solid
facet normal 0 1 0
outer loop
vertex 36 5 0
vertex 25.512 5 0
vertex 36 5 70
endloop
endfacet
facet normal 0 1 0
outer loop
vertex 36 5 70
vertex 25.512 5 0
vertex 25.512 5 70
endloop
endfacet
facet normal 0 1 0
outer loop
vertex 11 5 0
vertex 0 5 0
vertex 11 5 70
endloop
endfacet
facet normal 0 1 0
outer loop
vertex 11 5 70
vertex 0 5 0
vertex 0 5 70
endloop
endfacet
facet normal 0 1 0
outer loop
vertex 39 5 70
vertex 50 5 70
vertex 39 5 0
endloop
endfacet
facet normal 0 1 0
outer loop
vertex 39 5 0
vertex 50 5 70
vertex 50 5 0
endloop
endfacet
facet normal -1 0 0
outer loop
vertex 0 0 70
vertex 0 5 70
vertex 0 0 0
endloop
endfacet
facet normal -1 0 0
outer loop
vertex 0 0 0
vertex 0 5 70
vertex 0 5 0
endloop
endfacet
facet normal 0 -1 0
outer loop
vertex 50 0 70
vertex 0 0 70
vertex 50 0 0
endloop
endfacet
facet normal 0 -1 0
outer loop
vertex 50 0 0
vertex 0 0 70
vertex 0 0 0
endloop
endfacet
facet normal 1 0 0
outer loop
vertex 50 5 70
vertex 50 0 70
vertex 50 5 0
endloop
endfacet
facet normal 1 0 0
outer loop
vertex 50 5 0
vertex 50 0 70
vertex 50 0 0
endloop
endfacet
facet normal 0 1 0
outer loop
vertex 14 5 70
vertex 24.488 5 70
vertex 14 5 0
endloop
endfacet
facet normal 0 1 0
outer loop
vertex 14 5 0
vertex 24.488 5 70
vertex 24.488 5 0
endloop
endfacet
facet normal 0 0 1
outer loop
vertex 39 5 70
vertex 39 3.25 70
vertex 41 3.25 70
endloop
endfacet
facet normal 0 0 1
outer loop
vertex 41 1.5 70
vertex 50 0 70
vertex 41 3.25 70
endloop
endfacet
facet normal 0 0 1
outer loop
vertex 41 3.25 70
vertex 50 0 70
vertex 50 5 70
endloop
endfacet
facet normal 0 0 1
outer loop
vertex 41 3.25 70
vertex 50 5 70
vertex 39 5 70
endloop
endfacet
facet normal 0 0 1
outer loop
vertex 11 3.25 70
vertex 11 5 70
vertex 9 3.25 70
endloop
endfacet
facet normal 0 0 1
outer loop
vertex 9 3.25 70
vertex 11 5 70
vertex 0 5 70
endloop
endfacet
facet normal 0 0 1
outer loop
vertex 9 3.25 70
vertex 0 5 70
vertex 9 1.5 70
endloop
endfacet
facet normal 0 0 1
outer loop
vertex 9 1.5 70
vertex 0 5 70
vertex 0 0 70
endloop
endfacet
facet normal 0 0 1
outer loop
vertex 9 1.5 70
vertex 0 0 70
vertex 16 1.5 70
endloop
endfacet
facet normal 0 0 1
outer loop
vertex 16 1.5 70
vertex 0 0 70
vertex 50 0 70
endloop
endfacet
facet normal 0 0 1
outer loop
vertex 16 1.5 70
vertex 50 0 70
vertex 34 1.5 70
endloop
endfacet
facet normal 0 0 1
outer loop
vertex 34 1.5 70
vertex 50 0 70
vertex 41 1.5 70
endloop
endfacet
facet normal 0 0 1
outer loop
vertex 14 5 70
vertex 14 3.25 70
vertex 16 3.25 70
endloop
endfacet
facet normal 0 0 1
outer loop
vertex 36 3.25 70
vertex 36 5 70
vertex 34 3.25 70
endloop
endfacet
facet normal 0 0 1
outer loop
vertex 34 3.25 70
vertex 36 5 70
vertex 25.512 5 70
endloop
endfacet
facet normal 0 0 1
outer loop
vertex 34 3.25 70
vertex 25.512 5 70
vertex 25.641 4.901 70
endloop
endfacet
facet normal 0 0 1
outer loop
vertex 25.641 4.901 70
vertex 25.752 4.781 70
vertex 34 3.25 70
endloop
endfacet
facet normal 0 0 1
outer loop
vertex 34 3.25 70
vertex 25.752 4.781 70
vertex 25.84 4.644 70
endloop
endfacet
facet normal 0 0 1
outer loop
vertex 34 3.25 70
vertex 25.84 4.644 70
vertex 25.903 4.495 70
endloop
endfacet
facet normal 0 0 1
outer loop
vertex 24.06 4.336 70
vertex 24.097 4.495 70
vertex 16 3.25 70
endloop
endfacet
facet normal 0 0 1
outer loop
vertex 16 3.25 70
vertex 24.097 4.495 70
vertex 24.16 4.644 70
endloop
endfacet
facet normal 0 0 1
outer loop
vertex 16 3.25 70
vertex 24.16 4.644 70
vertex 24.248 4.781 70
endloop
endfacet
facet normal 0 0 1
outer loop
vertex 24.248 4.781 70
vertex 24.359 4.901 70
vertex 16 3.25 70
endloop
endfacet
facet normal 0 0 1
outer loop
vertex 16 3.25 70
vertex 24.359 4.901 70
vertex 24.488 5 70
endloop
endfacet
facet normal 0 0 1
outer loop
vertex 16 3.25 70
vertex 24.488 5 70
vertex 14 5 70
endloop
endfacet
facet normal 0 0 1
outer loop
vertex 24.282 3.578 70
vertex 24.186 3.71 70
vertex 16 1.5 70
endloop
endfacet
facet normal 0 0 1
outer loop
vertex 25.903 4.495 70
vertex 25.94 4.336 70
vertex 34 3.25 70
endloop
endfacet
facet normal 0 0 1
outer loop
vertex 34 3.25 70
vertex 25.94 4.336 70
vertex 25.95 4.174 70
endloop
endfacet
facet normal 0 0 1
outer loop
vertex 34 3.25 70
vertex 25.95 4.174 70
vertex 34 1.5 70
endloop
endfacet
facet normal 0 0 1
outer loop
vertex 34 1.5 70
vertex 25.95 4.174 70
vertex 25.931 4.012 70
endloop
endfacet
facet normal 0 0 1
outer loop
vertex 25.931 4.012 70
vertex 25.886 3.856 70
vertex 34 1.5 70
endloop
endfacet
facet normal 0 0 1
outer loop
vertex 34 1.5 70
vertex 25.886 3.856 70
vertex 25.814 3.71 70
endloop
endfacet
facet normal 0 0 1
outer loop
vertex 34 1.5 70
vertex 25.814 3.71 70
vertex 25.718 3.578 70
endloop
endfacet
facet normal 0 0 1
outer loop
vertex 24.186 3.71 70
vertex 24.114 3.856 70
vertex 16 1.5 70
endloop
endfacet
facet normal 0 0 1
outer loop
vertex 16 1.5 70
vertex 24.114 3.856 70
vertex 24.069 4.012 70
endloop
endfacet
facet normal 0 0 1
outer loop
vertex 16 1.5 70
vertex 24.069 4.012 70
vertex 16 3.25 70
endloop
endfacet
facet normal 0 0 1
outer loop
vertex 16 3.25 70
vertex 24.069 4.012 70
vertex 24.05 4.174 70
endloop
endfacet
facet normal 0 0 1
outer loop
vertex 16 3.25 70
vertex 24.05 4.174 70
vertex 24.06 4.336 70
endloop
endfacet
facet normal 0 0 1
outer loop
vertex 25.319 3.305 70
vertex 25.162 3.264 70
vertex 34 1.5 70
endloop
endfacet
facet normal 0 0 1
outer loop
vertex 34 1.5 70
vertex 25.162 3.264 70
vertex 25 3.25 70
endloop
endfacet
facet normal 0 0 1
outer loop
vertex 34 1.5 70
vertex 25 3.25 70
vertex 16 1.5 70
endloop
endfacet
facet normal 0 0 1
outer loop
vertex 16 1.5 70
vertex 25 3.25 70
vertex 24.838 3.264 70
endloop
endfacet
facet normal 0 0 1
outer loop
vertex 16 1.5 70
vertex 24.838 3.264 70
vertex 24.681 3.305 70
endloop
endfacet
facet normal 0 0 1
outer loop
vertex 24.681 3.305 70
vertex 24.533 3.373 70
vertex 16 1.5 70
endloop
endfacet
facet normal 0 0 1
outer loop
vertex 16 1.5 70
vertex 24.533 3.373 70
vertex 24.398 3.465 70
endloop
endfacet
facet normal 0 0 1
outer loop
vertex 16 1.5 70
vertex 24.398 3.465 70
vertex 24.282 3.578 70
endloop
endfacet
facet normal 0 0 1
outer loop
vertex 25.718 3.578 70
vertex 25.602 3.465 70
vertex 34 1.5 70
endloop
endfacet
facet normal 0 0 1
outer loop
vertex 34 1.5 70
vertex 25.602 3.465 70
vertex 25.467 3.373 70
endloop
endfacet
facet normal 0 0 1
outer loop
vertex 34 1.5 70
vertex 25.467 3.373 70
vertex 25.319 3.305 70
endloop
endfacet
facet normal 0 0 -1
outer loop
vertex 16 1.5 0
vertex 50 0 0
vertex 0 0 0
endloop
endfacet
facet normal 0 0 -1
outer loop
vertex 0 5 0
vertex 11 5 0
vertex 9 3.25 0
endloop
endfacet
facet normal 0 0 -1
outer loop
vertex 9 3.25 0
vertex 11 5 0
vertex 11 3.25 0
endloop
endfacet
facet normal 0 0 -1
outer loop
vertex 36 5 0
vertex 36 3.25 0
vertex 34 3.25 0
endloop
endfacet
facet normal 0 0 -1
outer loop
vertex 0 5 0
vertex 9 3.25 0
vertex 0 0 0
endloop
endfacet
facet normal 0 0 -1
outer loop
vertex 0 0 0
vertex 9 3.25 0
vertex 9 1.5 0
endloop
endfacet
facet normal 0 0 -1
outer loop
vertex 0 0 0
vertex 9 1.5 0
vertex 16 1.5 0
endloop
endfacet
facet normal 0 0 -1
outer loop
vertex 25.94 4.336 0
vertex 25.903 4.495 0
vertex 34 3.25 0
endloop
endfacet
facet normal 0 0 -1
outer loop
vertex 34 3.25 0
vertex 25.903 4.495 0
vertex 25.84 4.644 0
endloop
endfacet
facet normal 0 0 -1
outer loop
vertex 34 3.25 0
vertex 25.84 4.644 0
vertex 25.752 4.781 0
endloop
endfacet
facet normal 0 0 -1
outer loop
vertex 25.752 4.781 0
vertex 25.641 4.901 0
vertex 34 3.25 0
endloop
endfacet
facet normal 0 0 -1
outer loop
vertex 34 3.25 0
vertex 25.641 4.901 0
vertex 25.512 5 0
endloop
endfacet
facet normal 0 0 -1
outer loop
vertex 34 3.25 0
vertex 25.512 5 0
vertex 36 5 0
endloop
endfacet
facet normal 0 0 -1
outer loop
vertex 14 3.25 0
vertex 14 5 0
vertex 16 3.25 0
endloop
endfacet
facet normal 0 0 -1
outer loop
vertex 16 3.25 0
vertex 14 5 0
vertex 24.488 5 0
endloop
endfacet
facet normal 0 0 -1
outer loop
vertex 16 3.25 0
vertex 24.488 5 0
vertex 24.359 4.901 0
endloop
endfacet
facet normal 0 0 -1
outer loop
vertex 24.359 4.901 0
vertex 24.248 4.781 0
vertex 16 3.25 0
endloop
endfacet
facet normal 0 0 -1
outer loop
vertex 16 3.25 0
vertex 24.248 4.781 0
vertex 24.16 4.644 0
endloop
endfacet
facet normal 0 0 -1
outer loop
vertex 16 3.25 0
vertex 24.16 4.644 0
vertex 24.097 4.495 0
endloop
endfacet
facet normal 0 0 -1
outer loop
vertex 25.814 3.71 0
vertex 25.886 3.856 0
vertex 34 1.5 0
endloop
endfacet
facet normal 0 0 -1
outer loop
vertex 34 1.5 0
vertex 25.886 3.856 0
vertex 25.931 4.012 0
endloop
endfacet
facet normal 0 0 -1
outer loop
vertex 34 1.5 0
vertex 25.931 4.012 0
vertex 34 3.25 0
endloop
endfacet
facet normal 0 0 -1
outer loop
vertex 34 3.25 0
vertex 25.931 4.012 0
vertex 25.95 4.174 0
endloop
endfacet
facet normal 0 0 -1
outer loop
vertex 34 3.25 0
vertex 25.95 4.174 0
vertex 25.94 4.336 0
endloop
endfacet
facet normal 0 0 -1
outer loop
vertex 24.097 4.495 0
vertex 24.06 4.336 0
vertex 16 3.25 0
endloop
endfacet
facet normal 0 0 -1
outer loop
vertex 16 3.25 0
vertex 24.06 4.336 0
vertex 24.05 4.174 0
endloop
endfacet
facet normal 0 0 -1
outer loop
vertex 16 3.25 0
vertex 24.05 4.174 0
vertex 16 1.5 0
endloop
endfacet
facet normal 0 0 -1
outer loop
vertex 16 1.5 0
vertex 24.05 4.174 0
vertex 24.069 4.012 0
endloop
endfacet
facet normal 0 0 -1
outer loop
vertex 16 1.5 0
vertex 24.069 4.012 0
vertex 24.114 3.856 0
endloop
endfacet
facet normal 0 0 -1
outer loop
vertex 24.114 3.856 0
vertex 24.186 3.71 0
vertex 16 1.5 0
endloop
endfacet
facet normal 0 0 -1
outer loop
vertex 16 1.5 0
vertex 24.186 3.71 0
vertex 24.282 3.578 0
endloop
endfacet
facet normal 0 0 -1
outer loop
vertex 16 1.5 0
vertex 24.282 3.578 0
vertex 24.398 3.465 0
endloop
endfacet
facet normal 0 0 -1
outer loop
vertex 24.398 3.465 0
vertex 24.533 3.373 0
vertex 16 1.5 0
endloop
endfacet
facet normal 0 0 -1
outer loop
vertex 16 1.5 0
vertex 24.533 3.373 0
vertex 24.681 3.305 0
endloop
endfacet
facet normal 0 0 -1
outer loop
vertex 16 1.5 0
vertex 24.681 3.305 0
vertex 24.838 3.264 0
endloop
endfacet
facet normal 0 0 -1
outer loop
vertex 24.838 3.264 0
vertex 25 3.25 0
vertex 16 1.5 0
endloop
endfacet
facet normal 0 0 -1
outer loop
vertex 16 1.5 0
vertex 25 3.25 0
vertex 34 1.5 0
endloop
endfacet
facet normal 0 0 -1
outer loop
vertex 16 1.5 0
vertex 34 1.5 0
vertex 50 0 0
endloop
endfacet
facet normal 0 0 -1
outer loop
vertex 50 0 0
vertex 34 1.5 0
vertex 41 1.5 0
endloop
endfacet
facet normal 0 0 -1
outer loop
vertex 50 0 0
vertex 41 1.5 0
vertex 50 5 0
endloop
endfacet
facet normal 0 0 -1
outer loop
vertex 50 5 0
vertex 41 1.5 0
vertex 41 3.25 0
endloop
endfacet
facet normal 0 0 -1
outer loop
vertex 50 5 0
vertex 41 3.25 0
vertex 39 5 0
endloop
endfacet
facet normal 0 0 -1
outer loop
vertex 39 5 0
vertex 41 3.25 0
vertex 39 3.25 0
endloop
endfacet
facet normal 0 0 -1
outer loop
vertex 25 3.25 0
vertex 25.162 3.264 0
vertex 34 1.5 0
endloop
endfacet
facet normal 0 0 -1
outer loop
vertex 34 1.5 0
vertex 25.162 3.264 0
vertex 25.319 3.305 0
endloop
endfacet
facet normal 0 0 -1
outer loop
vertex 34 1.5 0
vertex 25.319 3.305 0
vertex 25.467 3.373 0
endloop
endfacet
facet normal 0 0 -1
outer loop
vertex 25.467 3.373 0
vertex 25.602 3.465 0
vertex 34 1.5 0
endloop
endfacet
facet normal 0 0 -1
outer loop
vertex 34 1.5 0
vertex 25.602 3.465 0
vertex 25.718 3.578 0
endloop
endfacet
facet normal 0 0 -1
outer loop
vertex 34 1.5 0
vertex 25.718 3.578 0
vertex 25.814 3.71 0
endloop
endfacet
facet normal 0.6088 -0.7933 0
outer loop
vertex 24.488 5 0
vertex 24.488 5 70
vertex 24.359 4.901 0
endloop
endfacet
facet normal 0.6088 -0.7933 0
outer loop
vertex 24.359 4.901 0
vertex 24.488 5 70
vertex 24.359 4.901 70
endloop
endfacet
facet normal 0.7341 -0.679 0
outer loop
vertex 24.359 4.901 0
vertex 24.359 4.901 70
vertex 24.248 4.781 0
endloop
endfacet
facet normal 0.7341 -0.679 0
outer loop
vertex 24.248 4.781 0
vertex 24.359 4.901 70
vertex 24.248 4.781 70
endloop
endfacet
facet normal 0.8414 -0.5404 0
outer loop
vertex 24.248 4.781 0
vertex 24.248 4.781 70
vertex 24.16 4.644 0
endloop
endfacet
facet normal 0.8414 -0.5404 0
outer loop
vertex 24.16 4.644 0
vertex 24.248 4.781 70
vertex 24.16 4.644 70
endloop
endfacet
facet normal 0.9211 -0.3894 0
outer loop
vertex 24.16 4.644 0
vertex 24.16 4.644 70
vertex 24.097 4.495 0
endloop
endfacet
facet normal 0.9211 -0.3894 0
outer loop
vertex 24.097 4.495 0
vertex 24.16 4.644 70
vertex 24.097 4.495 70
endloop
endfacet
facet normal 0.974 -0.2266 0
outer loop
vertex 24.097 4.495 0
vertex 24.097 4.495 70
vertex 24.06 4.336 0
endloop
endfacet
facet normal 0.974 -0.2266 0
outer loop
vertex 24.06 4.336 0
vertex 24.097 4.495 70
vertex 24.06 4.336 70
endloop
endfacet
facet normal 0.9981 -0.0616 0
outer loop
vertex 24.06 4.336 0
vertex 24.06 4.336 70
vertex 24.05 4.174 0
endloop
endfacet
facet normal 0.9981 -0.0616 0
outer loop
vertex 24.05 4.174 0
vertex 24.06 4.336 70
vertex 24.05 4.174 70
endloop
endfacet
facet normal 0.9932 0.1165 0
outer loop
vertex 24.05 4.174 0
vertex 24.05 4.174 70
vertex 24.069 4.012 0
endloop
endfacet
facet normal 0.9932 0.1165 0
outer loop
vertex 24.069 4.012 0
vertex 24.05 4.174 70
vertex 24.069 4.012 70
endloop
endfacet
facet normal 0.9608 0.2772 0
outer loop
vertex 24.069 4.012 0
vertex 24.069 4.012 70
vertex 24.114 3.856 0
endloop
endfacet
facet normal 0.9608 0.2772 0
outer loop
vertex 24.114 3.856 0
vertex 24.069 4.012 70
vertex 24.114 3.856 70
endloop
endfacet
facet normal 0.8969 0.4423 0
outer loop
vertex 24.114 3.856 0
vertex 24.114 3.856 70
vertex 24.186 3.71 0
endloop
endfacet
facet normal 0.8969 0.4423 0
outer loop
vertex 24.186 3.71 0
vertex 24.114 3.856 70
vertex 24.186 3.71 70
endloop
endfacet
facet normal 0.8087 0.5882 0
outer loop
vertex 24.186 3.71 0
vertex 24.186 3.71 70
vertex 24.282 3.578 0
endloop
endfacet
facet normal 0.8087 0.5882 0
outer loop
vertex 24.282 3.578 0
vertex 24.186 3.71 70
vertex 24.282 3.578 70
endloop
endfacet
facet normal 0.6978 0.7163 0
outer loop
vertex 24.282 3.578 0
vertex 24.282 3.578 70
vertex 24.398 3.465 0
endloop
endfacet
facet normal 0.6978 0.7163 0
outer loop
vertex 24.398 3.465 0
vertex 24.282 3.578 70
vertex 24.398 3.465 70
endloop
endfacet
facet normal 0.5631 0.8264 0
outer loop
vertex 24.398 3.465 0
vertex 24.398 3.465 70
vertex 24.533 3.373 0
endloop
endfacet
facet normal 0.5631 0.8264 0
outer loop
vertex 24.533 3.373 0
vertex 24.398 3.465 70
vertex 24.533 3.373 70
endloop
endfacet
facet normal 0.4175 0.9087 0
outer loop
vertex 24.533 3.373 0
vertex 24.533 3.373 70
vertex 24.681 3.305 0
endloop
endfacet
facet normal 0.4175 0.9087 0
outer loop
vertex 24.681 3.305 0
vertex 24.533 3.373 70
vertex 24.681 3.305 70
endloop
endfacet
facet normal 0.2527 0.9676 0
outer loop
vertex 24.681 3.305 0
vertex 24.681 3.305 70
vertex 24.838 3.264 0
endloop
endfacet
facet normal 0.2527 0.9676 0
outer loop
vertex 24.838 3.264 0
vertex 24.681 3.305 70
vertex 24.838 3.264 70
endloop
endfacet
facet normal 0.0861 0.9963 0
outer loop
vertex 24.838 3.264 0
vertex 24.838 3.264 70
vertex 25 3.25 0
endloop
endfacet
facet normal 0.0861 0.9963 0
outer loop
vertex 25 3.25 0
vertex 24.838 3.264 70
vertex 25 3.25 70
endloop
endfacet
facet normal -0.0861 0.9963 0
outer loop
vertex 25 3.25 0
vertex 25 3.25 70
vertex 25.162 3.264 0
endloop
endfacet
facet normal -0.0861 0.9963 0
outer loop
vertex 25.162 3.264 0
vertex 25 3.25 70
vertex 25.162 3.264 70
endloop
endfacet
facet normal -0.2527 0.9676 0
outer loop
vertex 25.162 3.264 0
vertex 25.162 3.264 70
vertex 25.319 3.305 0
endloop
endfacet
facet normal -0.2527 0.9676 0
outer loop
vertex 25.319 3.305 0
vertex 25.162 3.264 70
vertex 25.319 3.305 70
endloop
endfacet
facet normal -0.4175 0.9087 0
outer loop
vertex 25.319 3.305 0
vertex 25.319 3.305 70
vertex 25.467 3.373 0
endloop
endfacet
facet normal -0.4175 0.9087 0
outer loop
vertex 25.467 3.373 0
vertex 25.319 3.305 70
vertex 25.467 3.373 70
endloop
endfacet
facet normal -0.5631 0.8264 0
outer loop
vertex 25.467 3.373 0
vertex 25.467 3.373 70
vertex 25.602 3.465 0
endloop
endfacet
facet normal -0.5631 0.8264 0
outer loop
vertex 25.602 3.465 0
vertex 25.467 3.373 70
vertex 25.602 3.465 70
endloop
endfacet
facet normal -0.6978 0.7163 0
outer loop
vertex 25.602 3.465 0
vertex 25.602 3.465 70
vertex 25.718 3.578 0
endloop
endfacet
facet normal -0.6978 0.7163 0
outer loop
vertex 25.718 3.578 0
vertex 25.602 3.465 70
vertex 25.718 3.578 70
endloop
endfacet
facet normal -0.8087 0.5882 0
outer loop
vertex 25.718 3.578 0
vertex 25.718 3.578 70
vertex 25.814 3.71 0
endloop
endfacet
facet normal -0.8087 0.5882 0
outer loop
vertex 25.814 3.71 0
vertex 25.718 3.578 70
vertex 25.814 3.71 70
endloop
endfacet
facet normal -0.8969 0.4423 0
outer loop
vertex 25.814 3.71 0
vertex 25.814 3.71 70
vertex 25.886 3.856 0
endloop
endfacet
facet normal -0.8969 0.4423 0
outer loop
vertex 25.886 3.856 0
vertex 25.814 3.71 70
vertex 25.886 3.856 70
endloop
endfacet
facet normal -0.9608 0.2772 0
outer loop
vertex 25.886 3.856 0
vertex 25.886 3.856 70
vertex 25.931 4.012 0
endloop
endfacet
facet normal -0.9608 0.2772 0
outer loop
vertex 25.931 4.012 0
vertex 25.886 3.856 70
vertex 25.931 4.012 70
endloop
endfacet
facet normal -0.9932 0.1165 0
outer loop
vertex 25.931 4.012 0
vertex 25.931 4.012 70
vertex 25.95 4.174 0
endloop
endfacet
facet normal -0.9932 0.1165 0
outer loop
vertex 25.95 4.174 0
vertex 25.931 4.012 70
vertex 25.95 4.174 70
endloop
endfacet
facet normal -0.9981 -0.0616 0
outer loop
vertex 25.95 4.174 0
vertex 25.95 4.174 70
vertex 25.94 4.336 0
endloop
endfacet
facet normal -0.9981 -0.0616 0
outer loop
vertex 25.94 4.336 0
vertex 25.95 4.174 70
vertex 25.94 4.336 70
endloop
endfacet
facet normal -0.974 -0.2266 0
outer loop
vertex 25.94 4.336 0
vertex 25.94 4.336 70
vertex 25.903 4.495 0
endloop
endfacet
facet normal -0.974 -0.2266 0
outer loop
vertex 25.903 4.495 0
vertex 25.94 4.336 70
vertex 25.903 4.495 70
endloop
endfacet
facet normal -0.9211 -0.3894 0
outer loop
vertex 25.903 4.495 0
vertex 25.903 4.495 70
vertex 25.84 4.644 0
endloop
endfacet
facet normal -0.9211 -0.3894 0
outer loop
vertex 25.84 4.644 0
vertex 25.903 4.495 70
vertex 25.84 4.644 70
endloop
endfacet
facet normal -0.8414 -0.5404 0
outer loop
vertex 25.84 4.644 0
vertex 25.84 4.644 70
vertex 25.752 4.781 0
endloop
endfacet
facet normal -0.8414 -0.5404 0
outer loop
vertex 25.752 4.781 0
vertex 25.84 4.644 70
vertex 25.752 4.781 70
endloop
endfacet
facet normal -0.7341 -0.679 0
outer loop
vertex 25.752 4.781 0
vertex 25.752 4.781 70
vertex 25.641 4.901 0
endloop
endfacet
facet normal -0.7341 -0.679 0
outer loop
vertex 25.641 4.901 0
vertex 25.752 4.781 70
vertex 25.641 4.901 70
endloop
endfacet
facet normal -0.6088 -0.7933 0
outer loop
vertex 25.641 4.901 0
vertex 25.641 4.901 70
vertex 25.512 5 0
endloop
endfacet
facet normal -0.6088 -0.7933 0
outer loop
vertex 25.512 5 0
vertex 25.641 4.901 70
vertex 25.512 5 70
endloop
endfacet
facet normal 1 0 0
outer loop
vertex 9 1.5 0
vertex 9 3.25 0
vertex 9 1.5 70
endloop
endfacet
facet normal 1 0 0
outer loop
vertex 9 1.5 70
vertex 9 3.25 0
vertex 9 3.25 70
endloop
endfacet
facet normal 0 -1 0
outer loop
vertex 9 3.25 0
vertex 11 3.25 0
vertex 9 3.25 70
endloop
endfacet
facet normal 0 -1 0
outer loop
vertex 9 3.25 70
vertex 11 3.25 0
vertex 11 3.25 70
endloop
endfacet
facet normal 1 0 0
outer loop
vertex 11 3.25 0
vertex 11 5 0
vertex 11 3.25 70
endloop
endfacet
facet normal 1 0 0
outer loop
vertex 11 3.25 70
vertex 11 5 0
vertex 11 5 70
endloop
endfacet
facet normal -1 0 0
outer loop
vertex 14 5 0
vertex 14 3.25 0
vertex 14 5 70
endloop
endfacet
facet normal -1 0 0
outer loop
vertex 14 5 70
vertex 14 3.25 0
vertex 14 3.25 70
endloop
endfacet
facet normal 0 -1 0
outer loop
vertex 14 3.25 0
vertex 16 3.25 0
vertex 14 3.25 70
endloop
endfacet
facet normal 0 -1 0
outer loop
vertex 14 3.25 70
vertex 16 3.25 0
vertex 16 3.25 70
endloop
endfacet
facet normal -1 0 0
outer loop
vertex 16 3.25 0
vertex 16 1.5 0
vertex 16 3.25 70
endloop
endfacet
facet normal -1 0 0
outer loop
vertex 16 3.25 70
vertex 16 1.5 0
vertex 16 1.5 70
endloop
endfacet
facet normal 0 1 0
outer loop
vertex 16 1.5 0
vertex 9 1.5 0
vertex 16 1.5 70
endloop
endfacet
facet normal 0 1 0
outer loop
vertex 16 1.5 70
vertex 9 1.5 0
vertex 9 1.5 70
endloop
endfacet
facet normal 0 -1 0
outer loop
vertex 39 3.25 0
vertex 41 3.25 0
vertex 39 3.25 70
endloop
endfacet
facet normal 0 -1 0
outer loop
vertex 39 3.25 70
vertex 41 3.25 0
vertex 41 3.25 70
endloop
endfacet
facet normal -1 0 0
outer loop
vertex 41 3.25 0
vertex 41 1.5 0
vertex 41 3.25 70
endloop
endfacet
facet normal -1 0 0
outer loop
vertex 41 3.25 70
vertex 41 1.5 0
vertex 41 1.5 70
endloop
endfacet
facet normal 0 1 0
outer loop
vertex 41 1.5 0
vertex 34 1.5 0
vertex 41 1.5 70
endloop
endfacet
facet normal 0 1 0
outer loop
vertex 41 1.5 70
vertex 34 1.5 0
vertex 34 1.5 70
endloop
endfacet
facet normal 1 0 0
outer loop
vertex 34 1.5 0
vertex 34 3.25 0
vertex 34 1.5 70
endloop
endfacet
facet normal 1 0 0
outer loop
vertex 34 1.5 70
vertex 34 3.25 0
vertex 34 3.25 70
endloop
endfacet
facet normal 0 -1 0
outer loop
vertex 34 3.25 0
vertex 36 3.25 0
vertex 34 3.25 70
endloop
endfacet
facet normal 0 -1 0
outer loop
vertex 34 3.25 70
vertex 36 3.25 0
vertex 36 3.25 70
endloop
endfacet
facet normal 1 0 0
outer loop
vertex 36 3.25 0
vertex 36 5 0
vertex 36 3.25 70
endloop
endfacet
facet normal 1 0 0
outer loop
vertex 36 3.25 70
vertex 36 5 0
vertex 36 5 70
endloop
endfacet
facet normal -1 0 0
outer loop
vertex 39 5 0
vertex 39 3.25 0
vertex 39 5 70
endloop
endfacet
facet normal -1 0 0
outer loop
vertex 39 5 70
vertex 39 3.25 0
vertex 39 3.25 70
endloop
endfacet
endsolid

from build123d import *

# Parameters (mm, degrees)
SKETCH1_W           = 50
SKETCH1_H           = 5
BOSS_EXTRUDE1_DEPTH = 70
SKETCH3_R           = 0.95
CUT_EXTRUDE2_DEPTH  = 71


with BuildPart() as part:
    # Sketch1 → Boss-Extrude1 (new body)
    with BuildSketch(Plane.XY):
        with Locations((25, 2.5)):
            Rectangle(SKETCH1_W, SKETCH1_H)
    extrude(amount=BOSS_EXTRUDE1_DEPTH)

    # Sketch3 → Cut-Extrude2 (cut, through all)
    with BuildSketch(Plane.XY.offset(70)):
        with Locations((25, 4.2)):
            Circle(SKETCH3_R)
        Polygon((14, 3.25), (16, 3.25), (16, 1.5), (9, 1.5), (9, 3.25), (11, 3.25), (11, 5), (14, 5), align=None)
        Polygon((41, 3.25), (41, 1.5), (34, 1.5), (34, 3.25), (36, 3.25), (36, 5), (39, 5), (39, 3.25), align=None)
    extrude(amount=-CUT_EXTRUDE2_DEPTH, mode=Mode.SUBTRACT)


solid = part.part
